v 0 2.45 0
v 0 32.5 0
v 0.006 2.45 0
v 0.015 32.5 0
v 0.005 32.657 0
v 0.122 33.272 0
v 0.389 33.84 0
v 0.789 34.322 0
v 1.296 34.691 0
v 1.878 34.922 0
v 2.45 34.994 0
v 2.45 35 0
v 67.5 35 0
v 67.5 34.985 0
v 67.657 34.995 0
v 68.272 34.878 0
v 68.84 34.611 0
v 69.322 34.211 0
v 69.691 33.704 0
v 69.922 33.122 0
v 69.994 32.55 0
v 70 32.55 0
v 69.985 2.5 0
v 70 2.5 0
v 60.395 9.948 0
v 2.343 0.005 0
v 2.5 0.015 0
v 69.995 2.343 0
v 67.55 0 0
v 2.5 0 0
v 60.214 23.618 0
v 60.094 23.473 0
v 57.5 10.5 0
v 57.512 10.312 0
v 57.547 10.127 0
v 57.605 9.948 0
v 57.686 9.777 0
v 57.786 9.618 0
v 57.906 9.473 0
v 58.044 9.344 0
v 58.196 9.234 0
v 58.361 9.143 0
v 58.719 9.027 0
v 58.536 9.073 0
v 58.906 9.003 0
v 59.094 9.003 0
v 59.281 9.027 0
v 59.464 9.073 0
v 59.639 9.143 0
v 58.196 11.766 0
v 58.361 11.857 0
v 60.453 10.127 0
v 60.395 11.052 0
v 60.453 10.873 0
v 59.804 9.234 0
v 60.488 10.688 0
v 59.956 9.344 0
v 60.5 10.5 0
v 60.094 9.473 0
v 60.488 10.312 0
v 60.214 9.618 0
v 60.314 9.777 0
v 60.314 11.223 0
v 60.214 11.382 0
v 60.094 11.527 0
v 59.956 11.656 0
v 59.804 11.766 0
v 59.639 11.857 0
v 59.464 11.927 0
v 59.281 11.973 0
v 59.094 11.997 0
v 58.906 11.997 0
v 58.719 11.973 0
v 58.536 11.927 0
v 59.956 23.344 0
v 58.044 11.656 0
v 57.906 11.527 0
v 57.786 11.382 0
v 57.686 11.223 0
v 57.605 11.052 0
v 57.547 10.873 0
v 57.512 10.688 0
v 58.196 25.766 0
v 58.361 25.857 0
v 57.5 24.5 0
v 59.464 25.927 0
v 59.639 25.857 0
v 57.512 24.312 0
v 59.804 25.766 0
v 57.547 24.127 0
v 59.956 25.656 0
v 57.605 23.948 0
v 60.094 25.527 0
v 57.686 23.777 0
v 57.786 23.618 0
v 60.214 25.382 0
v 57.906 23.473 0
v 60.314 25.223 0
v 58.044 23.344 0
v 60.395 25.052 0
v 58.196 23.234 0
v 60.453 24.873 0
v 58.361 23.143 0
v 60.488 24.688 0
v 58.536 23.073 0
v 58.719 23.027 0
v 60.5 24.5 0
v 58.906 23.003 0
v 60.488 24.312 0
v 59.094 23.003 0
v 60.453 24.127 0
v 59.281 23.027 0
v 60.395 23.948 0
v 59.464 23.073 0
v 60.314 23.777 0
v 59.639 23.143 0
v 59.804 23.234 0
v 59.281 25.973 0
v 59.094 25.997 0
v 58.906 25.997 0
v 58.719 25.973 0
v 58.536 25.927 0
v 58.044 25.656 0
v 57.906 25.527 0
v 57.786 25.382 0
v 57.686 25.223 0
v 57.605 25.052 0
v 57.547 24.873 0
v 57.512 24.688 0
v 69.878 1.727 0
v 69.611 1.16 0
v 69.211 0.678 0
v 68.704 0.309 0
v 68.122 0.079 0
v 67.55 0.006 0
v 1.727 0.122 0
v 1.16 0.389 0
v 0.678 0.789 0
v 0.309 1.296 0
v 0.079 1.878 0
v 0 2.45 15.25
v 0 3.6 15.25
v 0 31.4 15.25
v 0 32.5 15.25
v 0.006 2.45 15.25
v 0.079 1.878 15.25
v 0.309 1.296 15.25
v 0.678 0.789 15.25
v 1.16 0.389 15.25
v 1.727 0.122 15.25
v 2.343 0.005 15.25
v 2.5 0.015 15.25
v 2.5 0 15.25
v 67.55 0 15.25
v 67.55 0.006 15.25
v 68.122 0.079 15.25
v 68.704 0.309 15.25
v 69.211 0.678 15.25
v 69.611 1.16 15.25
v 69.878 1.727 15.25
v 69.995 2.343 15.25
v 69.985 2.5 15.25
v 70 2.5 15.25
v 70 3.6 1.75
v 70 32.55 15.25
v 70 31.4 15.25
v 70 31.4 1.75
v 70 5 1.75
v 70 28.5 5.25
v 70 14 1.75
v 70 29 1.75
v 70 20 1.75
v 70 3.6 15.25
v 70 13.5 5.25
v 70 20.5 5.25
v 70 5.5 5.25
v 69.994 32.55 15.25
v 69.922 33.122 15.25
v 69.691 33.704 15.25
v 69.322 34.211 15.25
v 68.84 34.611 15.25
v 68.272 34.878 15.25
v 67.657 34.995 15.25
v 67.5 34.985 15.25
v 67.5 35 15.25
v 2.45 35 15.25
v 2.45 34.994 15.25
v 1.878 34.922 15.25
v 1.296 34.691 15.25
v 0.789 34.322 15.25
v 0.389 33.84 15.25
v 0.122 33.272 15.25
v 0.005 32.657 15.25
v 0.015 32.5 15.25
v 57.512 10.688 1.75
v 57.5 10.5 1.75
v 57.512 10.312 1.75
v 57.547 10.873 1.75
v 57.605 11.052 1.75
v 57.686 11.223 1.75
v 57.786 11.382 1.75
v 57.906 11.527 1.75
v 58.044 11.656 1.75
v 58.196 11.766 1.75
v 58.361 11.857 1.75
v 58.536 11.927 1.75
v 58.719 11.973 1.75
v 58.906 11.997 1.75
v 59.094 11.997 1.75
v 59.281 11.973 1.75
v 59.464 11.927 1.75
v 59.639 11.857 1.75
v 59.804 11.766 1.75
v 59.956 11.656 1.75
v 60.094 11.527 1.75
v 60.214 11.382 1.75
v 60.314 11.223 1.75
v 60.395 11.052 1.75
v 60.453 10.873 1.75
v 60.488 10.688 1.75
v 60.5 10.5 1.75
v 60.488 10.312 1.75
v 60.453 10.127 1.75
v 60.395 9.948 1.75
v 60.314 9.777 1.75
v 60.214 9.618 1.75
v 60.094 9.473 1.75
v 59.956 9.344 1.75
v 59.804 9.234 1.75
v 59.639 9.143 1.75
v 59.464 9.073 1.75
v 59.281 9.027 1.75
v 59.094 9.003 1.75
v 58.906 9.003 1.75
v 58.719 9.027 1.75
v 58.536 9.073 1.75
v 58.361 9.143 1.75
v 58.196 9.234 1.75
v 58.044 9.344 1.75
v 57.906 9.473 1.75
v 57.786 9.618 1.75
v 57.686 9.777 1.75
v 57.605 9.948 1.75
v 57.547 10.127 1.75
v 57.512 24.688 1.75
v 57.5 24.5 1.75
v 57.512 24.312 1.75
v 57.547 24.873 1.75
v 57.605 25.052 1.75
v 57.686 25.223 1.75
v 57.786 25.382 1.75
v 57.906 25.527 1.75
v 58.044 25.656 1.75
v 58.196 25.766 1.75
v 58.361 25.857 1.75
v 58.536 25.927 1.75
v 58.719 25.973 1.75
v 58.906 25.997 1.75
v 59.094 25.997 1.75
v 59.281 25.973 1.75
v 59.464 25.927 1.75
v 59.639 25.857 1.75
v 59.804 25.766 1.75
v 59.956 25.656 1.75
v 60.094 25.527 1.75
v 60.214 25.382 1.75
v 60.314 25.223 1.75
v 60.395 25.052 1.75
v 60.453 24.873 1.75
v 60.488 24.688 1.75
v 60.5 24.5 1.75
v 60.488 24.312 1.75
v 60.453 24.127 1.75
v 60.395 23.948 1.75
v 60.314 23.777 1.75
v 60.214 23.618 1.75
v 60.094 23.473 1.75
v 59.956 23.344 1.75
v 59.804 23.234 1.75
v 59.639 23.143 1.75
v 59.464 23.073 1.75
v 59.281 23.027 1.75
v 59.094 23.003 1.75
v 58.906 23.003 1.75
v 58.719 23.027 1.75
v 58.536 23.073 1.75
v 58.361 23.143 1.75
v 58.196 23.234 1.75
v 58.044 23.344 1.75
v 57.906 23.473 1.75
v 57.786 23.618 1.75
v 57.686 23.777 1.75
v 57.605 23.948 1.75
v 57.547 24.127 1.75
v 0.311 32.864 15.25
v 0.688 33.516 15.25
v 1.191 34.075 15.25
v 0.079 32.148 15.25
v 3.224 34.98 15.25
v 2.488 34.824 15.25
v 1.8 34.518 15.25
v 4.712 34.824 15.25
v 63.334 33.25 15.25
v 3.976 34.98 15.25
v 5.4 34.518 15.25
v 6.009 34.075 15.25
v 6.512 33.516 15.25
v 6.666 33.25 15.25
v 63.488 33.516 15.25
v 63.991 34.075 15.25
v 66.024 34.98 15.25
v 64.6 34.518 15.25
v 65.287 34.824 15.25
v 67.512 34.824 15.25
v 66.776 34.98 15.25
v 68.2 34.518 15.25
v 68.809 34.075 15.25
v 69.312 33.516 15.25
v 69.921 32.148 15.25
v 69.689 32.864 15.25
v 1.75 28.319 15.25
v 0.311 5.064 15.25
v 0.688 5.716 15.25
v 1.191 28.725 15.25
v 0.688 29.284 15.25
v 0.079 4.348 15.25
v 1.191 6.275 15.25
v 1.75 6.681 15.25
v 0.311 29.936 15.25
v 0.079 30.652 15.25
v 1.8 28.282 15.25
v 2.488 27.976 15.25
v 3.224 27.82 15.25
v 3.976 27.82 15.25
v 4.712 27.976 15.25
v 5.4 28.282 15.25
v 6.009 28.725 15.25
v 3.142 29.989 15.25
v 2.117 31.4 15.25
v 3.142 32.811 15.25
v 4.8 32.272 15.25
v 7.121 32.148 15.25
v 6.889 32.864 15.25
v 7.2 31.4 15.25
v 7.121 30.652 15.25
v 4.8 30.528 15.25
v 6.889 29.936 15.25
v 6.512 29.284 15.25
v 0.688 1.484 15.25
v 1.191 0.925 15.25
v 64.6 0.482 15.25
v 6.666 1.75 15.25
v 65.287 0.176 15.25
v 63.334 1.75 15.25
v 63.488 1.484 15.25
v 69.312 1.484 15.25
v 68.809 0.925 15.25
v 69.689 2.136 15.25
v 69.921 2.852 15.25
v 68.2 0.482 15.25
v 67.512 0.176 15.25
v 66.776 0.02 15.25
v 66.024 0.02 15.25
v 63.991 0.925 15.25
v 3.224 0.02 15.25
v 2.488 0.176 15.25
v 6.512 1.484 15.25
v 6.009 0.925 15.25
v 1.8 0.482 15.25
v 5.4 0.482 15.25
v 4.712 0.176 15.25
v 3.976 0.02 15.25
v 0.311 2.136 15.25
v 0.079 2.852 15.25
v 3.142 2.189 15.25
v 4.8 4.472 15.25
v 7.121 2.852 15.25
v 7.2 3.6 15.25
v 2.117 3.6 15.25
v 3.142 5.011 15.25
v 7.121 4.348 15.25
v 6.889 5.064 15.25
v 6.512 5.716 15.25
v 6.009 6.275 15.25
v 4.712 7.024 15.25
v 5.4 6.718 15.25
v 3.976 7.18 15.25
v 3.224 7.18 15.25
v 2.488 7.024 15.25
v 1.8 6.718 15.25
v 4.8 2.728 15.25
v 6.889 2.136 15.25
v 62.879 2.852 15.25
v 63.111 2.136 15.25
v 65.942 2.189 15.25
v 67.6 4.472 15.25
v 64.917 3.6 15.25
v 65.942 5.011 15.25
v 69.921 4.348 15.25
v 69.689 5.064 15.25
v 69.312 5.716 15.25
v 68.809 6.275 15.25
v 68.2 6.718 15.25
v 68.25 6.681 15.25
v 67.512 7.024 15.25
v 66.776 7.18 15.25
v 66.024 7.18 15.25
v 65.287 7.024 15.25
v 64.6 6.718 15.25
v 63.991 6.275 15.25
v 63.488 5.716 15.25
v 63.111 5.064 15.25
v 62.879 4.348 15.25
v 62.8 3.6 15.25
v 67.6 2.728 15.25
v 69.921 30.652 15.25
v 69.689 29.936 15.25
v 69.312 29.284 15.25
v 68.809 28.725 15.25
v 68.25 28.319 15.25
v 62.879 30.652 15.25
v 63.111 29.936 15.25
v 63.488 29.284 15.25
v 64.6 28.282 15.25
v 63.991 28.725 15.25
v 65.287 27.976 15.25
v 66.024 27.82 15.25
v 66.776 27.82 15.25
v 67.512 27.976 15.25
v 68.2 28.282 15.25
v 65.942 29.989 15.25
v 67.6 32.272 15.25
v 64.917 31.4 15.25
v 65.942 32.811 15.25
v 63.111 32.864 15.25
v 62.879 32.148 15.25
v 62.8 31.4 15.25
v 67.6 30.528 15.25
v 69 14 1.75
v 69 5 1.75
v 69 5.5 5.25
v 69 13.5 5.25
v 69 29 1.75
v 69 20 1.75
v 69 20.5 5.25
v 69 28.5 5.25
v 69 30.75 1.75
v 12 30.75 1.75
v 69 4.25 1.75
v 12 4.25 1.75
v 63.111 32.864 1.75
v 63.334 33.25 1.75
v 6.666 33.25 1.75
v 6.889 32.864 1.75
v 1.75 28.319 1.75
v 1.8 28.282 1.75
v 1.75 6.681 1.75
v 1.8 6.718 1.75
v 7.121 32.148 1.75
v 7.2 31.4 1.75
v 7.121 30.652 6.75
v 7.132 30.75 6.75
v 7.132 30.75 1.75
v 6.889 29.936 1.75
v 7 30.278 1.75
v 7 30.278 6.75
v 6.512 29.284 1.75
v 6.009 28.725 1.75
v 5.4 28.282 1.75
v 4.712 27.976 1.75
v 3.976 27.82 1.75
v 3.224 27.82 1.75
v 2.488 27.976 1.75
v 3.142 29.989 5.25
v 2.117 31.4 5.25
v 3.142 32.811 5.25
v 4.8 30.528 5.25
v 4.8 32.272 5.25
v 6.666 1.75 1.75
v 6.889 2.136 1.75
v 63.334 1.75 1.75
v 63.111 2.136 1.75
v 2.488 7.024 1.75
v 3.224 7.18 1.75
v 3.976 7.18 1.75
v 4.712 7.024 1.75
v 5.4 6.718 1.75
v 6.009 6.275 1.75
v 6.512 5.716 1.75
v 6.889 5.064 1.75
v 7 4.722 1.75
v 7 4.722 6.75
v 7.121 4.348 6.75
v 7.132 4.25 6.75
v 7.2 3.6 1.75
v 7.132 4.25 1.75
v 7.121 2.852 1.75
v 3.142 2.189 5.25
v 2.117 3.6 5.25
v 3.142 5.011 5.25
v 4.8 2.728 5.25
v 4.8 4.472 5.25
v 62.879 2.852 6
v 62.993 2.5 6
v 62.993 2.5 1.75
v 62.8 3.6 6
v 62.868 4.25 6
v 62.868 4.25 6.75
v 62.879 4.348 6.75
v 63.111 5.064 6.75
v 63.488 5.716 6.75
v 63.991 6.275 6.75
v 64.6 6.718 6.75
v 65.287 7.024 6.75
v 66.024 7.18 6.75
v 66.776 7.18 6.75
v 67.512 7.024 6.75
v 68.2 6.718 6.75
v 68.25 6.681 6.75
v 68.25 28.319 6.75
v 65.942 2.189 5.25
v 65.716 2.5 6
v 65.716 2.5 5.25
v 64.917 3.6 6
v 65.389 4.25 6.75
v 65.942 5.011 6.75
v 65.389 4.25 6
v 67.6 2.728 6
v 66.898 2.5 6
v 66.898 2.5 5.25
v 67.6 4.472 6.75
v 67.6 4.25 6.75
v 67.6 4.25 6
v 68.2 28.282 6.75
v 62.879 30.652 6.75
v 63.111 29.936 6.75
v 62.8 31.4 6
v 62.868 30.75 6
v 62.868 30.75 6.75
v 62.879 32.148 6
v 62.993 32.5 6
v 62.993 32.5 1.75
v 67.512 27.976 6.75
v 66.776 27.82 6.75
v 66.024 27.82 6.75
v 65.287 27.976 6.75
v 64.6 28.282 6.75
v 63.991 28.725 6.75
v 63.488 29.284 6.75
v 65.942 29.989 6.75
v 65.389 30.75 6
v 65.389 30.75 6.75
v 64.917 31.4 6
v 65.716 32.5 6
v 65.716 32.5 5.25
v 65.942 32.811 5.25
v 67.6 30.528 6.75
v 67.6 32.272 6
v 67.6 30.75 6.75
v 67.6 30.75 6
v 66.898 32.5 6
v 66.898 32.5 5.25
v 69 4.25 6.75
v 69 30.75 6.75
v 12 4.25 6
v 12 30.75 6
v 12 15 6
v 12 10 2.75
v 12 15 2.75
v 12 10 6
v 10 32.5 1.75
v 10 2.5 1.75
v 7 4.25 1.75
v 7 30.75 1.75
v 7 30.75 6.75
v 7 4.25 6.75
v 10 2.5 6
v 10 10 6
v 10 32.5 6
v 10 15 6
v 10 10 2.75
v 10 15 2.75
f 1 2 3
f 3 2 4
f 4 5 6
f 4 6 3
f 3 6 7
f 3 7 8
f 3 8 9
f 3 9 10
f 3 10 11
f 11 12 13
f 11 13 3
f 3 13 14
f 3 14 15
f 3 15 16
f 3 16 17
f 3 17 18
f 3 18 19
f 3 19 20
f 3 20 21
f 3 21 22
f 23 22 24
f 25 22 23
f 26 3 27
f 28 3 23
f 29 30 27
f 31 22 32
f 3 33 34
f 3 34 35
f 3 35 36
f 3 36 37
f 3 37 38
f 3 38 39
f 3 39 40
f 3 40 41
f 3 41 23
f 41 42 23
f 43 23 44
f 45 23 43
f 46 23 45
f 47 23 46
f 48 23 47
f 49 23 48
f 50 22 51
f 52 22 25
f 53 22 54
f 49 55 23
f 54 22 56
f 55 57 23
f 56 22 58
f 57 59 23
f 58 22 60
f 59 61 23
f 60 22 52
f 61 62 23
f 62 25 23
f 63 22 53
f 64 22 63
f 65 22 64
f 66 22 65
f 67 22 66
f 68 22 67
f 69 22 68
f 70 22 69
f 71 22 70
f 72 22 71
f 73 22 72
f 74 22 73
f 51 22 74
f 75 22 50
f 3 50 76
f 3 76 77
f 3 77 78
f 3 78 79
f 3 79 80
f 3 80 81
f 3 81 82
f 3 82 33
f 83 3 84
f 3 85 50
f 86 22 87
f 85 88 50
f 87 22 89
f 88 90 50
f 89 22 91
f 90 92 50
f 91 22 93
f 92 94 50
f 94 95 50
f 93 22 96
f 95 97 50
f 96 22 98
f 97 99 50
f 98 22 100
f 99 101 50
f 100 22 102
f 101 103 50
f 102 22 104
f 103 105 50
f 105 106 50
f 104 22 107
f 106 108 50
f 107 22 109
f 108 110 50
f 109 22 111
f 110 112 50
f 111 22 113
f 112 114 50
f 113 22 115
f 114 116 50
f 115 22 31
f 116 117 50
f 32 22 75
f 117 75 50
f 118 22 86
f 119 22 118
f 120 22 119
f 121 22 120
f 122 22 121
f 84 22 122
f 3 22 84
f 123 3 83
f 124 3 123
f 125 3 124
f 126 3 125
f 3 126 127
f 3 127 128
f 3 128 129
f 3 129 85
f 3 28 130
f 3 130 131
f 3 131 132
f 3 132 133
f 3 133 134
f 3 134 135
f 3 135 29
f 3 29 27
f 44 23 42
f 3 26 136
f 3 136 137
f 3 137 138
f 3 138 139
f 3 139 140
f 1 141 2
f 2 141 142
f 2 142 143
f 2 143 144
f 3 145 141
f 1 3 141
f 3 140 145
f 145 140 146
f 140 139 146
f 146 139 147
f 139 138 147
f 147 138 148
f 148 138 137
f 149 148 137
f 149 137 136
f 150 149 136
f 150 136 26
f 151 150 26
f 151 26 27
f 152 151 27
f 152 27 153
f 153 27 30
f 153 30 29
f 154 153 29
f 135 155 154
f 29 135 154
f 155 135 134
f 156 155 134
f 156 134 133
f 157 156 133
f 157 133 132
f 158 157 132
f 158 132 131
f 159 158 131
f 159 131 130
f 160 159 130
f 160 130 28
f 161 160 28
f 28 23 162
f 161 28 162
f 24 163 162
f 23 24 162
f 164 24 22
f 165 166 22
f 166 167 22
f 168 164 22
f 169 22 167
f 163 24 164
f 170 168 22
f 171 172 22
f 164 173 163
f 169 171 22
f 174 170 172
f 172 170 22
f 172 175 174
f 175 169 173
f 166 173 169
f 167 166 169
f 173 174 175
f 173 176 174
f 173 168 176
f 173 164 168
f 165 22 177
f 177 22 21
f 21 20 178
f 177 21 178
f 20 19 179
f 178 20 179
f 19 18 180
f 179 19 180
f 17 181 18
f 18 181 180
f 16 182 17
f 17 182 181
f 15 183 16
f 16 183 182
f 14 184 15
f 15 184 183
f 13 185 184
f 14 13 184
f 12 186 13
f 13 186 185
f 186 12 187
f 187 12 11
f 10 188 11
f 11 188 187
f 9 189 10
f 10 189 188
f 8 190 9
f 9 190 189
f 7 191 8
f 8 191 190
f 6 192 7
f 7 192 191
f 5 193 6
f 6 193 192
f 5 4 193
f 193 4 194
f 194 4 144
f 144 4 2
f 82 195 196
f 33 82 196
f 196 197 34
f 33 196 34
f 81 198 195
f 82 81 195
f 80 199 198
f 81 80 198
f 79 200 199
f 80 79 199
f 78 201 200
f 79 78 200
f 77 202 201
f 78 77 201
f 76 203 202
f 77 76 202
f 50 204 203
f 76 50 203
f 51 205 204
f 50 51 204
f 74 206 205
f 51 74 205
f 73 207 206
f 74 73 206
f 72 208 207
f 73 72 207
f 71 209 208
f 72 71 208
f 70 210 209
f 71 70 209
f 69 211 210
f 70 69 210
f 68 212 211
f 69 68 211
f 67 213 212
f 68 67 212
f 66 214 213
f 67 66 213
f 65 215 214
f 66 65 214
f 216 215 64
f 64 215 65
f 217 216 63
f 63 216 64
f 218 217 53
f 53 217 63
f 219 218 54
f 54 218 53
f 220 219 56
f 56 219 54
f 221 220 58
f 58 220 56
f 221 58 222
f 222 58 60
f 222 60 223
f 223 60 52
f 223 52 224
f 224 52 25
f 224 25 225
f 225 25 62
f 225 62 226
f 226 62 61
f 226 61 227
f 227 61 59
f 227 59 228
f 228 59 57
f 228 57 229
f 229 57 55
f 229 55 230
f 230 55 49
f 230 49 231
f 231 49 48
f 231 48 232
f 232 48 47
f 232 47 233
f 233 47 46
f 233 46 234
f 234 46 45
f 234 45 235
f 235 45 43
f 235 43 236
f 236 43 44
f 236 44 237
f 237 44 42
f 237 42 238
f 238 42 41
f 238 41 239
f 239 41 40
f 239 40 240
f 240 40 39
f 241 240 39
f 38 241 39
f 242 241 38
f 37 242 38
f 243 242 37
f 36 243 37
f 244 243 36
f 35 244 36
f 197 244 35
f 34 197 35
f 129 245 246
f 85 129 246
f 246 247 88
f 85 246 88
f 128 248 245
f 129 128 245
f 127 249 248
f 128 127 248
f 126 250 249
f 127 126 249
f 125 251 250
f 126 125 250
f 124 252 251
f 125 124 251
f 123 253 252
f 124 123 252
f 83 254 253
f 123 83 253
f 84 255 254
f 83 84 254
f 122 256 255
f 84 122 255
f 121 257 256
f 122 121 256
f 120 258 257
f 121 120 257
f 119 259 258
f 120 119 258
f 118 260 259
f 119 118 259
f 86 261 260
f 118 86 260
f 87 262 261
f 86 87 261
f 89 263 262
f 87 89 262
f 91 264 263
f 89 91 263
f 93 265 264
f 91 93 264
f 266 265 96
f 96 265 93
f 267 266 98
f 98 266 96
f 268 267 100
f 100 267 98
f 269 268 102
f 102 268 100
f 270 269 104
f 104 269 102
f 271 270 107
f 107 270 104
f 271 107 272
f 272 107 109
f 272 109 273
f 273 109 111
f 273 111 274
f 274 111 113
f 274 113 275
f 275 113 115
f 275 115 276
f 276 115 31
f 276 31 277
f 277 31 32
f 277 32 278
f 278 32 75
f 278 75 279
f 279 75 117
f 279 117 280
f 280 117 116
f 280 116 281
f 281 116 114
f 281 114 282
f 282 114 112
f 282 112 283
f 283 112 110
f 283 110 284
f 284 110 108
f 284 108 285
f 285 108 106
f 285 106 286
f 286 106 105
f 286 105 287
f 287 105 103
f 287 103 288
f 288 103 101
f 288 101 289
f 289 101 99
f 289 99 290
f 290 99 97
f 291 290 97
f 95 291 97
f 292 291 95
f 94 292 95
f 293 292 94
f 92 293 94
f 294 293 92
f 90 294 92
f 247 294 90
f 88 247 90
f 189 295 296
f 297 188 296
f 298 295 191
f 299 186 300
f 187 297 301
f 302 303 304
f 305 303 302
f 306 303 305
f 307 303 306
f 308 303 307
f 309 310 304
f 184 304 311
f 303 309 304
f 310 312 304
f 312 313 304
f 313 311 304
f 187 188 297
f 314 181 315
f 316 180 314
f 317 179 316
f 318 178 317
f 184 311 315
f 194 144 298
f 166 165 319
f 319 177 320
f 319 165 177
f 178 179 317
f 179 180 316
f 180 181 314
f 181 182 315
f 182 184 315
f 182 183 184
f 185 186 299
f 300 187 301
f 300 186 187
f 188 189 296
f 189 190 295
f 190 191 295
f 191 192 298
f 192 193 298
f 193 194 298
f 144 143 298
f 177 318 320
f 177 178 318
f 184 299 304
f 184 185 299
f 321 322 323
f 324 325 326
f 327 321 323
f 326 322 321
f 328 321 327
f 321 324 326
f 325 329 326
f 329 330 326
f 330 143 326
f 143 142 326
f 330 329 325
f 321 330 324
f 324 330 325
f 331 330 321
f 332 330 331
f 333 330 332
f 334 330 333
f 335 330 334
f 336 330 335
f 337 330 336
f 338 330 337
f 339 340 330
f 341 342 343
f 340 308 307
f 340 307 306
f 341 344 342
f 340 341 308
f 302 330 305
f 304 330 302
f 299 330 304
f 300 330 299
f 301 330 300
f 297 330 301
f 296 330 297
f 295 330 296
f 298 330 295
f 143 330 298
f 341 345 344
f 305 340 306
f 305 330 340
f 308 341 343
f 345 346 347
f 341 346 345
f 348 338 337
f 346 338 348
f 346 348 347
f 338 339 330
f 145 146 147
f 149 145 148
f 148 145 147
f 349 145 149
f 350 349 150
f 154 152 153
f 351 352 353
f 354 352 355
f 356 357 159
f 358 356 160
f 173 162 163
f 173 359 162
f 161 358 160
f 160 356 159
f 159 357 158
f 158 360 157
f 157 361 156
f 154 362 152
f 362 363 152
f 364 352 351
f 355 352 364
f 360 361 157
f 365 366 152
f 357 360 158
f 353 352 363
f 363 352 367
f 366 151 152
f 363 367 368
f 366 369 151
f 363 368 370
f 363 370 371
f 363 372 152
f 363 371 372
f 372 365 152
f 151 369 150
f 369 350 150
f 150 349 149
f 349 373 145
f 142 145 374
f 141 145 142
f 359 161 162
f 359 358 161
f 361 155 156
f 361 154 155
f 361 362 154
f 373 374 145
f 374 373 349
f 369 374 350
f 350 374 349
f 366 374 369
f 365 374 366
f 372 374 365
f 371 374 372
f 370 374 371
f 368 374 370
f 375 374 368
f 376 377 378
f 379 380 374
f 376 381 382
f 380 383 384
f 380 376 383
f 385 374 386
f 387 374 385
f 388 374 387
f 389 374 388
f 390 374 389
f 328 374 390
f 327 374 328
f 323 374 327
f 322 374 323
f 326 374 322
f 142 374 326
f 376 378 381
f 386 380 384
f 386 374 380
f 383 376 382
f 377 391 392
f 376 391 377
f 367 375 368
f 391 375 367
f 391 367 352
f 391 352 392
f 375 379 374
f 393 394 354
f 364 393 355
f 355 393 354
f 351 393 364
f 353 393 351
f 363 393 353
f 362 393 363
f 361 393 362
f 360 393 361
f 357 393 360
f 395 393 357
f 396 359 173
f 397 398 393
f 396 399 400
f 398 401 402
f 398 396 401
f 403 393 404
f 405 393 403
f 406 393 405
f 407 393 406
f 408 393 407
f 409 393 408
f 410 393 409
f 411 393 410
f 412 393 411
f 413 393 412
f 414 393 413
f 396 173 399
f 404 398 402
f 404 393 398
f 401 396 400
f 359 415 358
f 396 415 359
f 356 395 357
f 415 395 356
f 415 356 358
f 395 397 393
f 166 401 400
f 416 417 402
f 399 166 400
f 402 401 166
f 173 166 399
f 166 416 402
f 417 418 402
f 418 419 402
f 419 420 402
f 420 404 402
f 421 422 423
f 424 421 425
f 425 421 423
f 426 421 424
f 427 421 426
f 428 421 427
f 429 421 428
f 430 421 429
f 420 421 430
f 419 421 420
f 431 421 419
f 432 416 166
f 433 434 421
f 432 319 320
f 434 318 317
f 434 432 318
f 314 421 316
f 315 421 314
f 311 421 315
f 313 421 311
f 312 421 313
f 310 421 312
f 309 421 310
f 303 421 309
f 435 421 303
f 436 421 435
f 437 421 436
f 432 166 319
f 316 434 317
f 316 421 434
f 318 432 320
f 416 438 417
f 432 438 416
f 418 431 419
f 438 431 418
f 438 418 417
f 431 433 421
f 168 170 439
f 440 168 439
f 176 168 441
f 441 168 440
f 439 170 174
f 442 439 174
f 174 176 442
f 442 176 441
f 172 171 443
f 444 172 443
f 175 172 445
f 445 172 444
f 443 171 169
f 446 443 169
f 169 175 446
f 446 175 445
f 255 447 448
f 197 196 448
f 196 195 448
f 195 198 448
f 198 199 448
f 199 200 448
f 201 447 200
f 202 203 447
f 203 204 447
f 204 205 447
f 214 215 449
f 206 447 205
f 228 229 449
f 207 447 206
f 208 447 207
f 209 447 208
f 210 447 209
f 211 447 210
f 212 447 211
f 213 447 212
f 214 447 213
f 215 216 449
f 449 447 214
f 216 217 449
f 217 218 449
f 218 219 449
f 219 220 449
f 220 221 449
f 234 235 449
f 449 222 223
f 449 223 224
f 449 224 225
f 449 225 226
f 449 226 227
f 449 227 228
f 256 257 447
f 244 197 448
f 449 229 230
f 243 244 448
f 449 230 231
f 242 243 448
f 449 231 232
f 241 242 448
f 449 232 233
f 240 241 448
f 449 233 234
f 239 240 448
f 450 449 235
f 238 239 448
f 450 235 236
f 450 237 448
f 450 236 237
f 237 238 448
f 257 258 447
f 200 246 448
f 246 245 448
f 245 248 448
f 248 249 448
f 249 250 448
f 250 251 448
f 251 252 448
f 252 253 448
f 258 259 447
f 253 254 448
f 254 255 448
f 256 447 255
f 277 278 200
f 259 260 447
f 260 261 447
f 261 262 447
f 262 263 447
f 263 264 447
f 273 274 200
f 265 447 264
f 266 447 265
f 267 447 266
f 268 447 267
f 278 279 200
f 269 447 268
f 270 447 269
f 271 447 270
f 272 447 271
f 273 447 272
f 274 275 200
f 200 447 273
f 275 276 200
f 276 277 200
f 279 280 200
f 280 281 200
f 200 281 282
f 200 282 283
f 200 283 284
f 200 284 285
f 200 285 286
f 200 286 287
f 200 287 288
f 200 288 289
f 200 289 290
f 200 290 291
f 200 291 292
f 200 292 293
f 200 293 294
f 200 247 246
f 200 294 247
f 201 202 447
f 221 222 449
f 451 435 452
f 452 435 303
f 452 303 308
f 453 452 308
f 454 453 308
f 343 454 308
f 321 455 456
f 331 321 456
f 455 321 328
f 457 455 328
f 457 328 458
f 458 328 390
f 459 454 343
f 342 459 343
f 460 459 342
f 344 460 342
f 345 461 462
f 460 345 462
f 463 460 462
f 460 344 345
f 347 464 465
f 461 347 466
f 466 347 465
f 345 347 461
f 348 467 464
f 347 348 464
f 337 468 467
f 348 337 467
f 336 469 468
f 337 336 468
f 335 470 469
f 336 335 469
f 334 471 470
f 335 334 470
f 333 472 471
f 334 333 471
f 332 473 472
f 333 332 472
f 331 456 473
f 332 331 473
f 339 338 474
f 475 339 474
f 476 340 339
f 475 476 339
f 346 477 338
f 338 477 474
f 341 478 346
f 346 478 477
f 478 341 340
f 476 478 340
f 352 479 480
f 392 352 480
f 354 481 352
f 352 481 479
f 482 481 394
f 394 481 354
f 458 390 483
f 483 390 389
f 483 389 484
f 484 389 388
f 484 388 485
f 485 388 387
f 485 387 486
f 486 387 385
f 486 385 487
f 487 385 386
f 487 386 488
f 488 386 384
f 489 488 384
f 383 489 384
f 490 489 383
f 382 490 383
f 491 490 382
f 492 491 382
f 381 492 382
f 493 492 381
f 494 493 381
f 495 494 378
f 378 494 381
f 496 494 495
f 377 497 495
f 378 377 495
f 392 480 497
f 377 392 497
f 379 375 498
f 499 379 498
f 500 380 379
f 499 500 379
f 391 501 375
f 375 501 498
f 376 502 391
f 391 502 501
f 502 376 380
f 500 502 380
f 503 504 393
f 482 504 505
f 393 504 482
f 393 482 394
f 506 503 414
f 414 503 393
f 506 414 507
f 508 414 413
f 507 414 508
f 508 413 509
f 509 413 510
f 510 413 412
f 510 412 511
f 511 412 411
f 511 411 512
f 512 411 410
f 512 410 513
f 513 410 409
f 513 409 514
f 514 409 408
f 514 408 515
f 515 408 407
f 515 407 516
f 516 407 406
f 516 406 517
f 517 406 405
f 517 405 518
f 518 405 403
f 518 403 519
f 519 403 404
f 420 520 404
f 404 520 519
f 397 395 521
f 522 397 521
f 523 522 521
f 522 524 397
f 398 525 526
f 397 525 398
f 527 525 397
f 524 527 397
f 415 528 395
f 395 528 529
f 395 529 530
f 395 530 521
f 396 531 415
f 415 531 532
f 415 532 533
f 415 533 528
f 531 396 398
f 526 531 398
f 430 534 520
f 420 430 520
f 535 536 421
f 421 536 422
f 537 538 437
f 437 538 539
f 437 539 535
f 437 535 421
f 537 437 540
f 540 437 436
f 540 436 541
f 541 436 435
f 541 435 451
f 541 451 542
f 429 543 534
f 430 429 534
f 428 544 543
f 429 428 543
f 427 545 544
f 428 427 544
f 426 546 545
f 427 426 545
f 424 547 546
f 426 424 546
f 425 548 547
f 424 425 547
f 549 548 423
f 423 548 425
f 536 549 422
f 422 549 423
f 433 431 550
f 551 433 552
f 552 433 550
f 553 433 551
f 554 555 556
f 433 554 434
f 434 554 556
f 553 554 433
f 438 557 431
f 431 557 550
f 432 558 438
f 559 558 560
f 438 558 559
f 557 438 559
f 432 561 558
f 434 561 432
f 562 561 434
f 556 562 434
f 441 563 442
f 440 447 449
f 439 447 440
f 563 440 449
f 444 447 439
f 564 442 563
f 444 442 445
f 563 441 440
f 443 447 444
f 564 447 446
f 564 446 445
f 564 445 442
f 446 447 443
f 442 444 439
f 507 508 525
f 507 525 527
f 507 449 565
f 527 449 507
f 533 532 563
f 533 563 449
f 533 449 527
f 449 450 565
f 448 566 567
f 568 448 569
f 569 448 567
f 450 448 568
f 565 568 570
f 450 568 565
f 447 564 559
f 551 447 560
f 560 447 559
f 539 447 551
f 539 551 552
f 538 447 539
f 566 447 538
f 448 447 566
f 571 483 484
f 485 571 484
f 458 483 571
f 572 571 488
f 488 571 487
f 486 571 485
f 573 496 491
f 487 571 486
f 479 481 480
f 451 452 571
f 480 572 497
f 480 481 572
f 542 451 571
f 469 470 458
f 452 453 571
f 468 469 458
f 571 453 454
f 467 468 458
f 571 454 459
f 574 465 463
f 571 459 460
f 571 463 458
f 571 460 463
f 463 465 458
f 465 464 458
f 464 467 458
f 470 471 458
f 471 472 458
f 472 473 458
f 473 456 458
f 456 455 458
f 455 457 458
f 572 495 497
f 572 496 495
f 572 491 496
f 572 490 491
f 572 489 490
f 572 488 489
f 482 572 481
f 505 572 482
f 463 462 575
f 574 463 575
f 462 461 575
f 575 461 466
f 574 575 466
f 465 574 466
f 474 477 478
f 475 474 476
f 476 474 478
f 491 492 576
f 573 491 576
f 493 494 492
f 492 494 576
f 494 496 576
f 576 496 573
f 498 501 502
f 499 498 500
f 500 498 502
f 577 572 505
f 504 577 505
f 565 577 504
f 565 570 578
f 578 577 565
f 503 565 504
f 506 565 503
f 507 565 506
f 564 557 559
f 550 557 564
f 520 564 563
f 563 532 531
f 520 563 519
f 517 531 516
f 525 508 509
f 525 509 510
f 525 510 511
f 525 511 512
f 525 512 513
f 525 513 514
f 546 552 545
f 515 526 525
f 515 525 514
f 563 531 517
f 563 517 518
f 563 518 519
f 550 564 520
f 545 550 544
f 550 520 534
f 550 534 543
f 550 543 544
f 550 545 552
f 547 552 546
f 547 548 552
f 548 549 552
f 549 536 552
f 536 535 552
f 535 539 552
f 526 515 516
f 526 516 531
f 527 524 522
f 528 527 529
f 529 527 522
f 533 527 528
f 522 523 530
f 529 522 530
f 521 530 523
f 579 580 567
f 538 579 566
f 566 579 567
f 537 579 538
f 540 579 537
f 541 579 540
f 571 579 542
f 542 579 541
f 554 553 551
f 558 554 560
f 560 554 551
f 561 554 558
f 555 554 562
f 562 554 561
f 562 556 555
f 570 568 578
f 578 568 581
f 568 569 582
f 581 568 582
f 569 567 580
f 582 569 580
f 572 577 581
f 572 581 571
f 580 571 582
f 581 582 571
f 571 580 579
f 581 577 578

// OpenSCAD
// file: polyhole.scad
module polyhole(h, d) {
    n = max(round(2 * d),3);
    rotate([0,0,180])
        cylinder(h = h, r = (d / 2) / cos (180 / n), $fn = n);
}

x=10;
y=30;
z=5;
explode=true;
if (explode)
{
cube(size = [x,y,z], center = false);
translate([0,0,10]) {color([1,1,0]); cylinder(h = z, r = 1, $fn = 6);}
}
// file: roundCornersCube.scad
/*
http://codeviewer.org/view/code:1b36 
Copyright (C) 2011 Sergio Vilches
This program is free software: you can redistribute it and/or modify it under the terms of the GNU General Public License as published by the Free Software Foundation, either version 3 of the License, or (at your option) any later version.
This program is distributed in the hope that it will be useful, but WITHOUT ANY WARRANTY; without even the implied warranty of MERCHANTABILITY or FITNESS FOR A PARTICULAR PURPOSE. See the GNU General Public License for more details. You should have received a copy of the GNU General Public License along with this program. If not, see <http://www.gnu.org/licenses/>.
Contact: s.vilches.e@gmail.com


    ----------------------------------------------------------- 
                 Round Corners Cube (Extruded)                
      roundCornersCube(x,y,z,r) Where:                        
         - x = Xdir width                                     
         - y = Ydir width                                     
         - z = Height of the cube                             
         - r = Rounding radious                               
                                                              
      Example: roundCornerCube(10,10,2,1);                    
     *Some times it's needed to use F6 to see good results!   
 	 ----------------------------------------------------------- 
*/
// Test it!
// roundCornersCube(10,5,2,1);


module createMeniscus(h,radius) // This module creates the shape that needs to be substracted from a cube to make its corners rounded.
difference(){        //This shape is basicly the difference between a quarter of cylinder and a cube
   translate([radius/2+0.1,radius/2+0.1,0]){
      cube([radius+0.2,radius+0.1,h+0.5],center=true);         // All that 0.x numbers are to avoid "ghost boundaries" when substracting
   }

   cylinder(h=h+0.2,r=radius,$fn = 25,center=true);
}


module roundCornersCube(x,y,z,r)  // Now we just substract the shape we have created in the four corners
difference(){
   cube([x,y,z], center=true);

translate([x/2-r,y/2-r]){  // We move to the first corner (x,y)
      rotate(0){  
         createMeniscus(z,r); // And substract the meniscus
      }
   }
   translate([-x/2+r,y/2-r]){ // To the second corner (-x,y)
      rotate(90){
         createMeniscus(z,r); // But this time we have to rotate the meniscus 90 deg
      }
   }
      translate([-x/2+r,-y/2+r]){ // ... 
      rotate(180){
         createMeniscus(z,r);
      }
   }
      translate([x/2-r,-y/2+r]){
      rotate(270){
         createMeniscus(z,r);
      }
   }
}
// file: teardrops.scad
/* From http://www.thingiverse.com/thing:3457
   © 2010 whosawhatsis

   This program is free software: you can redistribute it and/or modify
   it under the terms of the GNU Lesser General Public License as published by
   the Free Software Foundation, either version 3 of the License, or
   (at your option) any later version.

   This program is distributed in the hope that it will be useful,
   but WITHOUT ANY WARRANTY; without even the implied warranty of
   MERCHANTABILITY or FITNESS FOR A PARTICULAR PURPOSE. See the
   GNU Lesser General Public License for more details.

   You should have received a copy of the GNU Lesser General Public License
   along with this program. If not, see <http://www.gnu.org/licenses/>.
*/


/*
This script generates a teardrop shape at the appropriate angle to prevent overhangs greater than 45 degrees. The angle is in degrees, and is a rotation around the Y axis. You can then rotate around Z to point it in any direction. Rotation around X or Y will cause the angle to be wrong.
*/

module teardrop(radius, length, angle) {
	rotate([0, angle, 0]) union() {
		linear_extrude(height = length, center = true, convexity = radius, twist = 0)
			circle(r = radius, $fn = 30);
		linear_extrude(height = length, center = true, convexity = radius, twist = 0)
			projection(cut = false) rotate([0, -angle, 0]) translate([0, 0, radius * sin(45) * 1.5]) cylinder(h = radius * sin(45), r1 = radius * sin(45), r2 = 0, center = true, $fn = 30);
	}
		
	//I worked this portion out when a bug was causing the projection above to take FOREVER to calculate. It works as a replacement, and I figured I'd leave it here just in case.
	/*
		#polygon(points = [[radius * cos(-angle / 2), radius * sin(-angle / 2), 0],[radius * cos(-angle / 2), radius * -sin(-angle / 2), 0],[(sin(-angle - 45) + cos(-angle - 45)) * radius, 0, 0]], paths = [[0, 1, 2]]);
		#polygon(points = [[radius * -cos(-angle / 2), radius * sin(-angle / 2), 0],[radius * -cos(-angle / 2), radius * -sin(-angle / 2), 0],[(sin(-angle - 45) + cos(-angle - 45)) * radius, 0, 0]], paths = [[0, 1, 2]]);
		#polygon(points = [[radius * sin(-angle / 2), radius * cos(-angle / 2), 0],[radius * sin(-angle / 2), radius * -cos(-angle / 2), 0],[(sin(-angle - 45) + cos(-angle - 45)) * radius, 0, 0]], paths = [[0, 1, 2]]);
	*/
}

/*
 * Simple intersection method to implement a flat/truncated teardrop
 */
module flat_teardrop(radius, length, angle) {
	intersection() {
		rotate([0, angle, 0]) {
			cube(size=[radius * 2, radius * 2, length], center=true);
		}
		teardrop(radius, length, angle);
	}
}

module test_teardrop(){
    translate([0, -15, 0]) teardrop(5, 20, 90);
    translate([0, 0, 0]) teardrop(5, 20, 60);
    translate([0, 15, 0]) teardrop(5, 20, 45);
}

//test_teardrop();
// main file
// Generic case - Improved
// v1 January 2015
// Printbus

// Remixed from dandmpye's Generic case (box and lid) http://www.thingiverse.com/thing:28608
// Changes include revised dimensioning for improved scalability
// Reformatted and labels revised for readability
// Added provision for mounting tabs

// Revise your paths to libary where these openSCAD library modules are located
use <teardrops.scad>
use <roundCornersCube.scad>
use <polyhole.scad>
// Summary of external modules used - 
// polyhole(h,d) provides improved size control on small holes
// roundCornersCube (x,y,z,r)

module standoff( post_od , post_id , post_h , hole_depth) {
  // Generates a standoff for mounting lid or circuit board
  // post_od: outer diamter of the standoff post
  // post_id: diameter of the inner hole in the standoff post
  // post_h: height of the standoff post
  // hole_depth: depth of the inner hole in the standoff post
  difference() {
    // start with a solid post
    cylinder( d = post_od , h = post_h , $fs=0.01);
    // remove the hole for the screw
    translate([ 0 , 0 , post_h - hole_depth ])
      polyhole( hole_depth + 1 , post_id ); 
  }  // end difference
}  // end module standoff

module cylindrical_lip( lip_od , lip_h , lip_w ) {	
  // Generate a quarter circle arc for use as a lip
  // lip_od: outer diameter of the lip arc
  // lip_h: height of the lip arc
  // lip_w: width of the lip arc
  lip_r = lip_od / 2;   // calculate radius of the lip arc
  difference() {
    // start with a solid cylinder
    cylinder( r=lip_r , h=lip_h , $fs=0.01);
    // hollow it out to form a ring
    translate([ 0 , 0 , -0.5 ])                // -0.5 to offset oversized cylinder being removed
      cylinder( r = lip_r - lip_w , h = lip_h + 1 , $fs=0.01 ); // oversize by +1 to ensure complete removal
    // remove all but a quarter of the ring
    translate([ -lip_r , 0 , -0.5 ])           // -0.5 to offset oversized cube being removed
      cube([ lip_od + 1 , lip_r , lip_h + 1 ]);// oversize by +1 to ensure complete removal 
    translate([ 0 , -lip_r , -0.5 ])           // -0.5 to offset oversized cube being removed
      cube([ lip_od + 1 , lip_r , lip_h + 1 ]);// oversize by +1 to ensure complete removal
  }  // end difference
}  // end module cylindrical_lip

module rounded_cube_case (generate_box, generate_lid, box_len, box_height) {
  // generate_box: true or false flag
  // generate_lid: true or false flag

  // Design rendering of box starts at x=0, y=0, z=0 (mounting tab will go into -x)
  // If used, mounting tabs are always added on X axis ends

  // Case parameters for tailoring  
  sx = box_len; 			     // box outer size in X axis
  sy = 35;			     // box outer size in Y axis
  sz = box_height;				  // box outer size in Z axis, including top and bottom
  box_r = 2.5;			  // radius of the box corners
  wall_t = 1.75;       // wall thickenss for the box and lid should be < box_hole_dia
  ft = 0.2;            // fit tolerance or clearance on lid

  // Box and lid screw hole parameters for tailoring
  box_hole_dia = 2.4;  // diameter of the screw hole in the box part (2.4 for #4)
  box_hole_depth = 10; // depth of the screw hole must be < box height
  lid_hole_dia = 3.2;  // diameter of the screw hole in the lid part (3.2 for #4)
  lid_head_dia = 5.5;  // diameter of the screw head recess (5.5 for #4)
  lid_head_depth = 0;  // depth of head recess (only use if wall_t can accomodate it)

  // Mounting tab parameters for tailoring
  tab_w = 8;           // mounting tab width 
  use_tab = false;     // true or false for mounting tab yes/no
  tab_hole_dia = 3.2;  // diameter of the clearance holes in the mounting tabs
  tab_hole_offset = 7; // offset from edge of tab to mounting holes

  // Misc calculations
  // corner_post_dia must be >= twice the wall thickness and >= lid_head_dia
  corner_post_dia = box_hole_dia * 3 ;    // diameter of the corner standoff post
  corner_post_r = corner_post_dia / 2 ;   // radius of the corner standoff post
  corner_lip_dia = corner_post_dia + 2 * (corner_post_r - wall_t) + 2 * ft ;
  corner_lip_r = corner_lip_dia / 2;

  // Prepare matrix of lid hole locations
  lid_hole_centres = [[    corner_post_r ,      corner_post_r , 0], 
					    [  sx - corner_post_r ,      corner_post_r , 0],
					    [  sx - corner_post_r , sy - corner_post_r , 0], 
					    [       corner_post_r , sy - corner_post_r , 0]];

  // Prepare matrix of mounting tab hole locations
  // Mounting holes are centered each corner of the mounting tabs
  tab_hole_centres = [[ -tab_w/2      , tab_hole_offset      , 0 ],
                      [  sx + tab_w/2 , tab_hole_offset      , 0 ],
                      [  sx + tab_w/2 , sy - tab_hole_offset , 0 ],
                      [  -tab_w/2     , sy - tab_hole_offset , 0 ]];

  if (generate_box == true) {    // we need to create the box part
    union() {
      difference() {
        // Start with a solid rounded cube
        translate([ sx/2 , sy/2 , sz/2 ])
          roundCornersCube( sx , sy , sz , box_r );
        // reduce the solids by the height of the box lid
        translate([ -0.1 , -0.1 , sz - wall_t ])
          cube([ sx+1 , sy+1 , wall_t + 1 ]);
        // Hollow out the box
        translate([ sx/2 , sy/2 , sz/2 + wall_t ]) 
          roundCornersCube( sx - (wall_t*2) , sy - (wall_t*2) , sz, box_r );

        // Define any holes in the box walls here

      }  // End difference
			
      // Add the standoff posts for the lid screws in each corner
      for (i = lid_hole_centres) {
        translate([ 0 , 0 , wall_t ])  // raise up to the inside of the box
          translate(i)                 // locate a corner
            standoff( corner_post_dia , box_hole_dia , sz - (wall_t * 2) , box_hole_depth );
      }  // end for loop

      // Add any mounting standoff posts on the box bottom here

      // Add mounting tab if needed
      if ( use_tab == true ) {
        difference () {
          // start with the solid mounting tab
          translate ([ sx/2 , sy/2 , wall_t/2 ])
            roundCornersCube ( sx + (tab_w*2) , sy , wall_t , box_r );

          // now remove holes in the mounting tab
          for (j = tab_hole_centres) {          // for each hole in the mounting tab
            translate ([ 0 , 0 , -0.5 ])        // shift Z to ensure complete removal of hole
              translate(j)
                polyhole ( wall_t + 1 , tab_hole_dia );
          }  // end for loop on mounting tab holes
        }  // end difference
      }  // end if use_tab

    }  // end union
  }  // end if generate_box

  y_offset = generate_box ? sy+10 : 0; // offset lid Y by sy+10 if we are also doing box
  if ( generate_lid == true ) {        // we need to create the lid part
    translate([ 0, y_offset , 0]) { 
      difference() {
        // create the base solids for the lid
        union() {
          //Create the plate of the lid
          translate([ sx/2 , sy/2, wall_t/2 ])
            roundCornersCube( sx , sy , wall_t , box_r );
 
          // Add a reinforcement lip to the lid, starting with the straight portions 
          // The lip has a height equal to the wall thickness
          // The lip width is adjusted to align inside edge with corner hole centers
          translate([ corner_post_dia + ft , wall_t + ft , wall_t ]) 
            cube([sx - (corner_post_dia*2) - (ft*2) , corner_post_r-wall_t , wall_t ]);
          translate([wall_t + ft , corner_post_dia + ft , wall_t]) 
            cube([ corner_post_r-wall_t , sy - (corner_post_dia*2) - (ft*2) , wall_t ]);
          translate([sx - corner_post_r - ft , corner_post_dia + ft , wall_t ]) 
            cube([corner_post_r-wall_t , sy - (corner_post_dia*2) - (ft*2) , wall_t ]);	
          translate([corner_post_dia + ft, sy - corner_post_r - ft, wall_t]) 
            cube([sx - (corner_post_dia*2) - (ft*2) , corner_post_r-wall_t , wall_t]);
					
          //Fit a quarter circle lip around the corner standoffs
          translate([ 0 , 0 , wall_t]) 
            translate( lid_hole_centres[0] ) 
              rotate(180)  
                cylindrical_lip( corner_lip_dia , wall_t , corner_post_r-wall_t );
          translate([ 0 , 0 , wall_t ])
            translate( lid_hole_centres [1] )
              rotate(270)  
                cylindrical_lip( corner_lip_dia , wall_t , corner_post_r-wall_t );
          translate([ 0 , 0 , wall_t ])
            translate( lid_hole_centres [2] ) 
              cylindrical_lip( corner_lip_dia , wall_t, corner_post_r-wall_t );
          translate([ 0 , 0 , wall_t ])
            translate( lid_hole_centres [3] )
              rotate(90)  
					 cylindrical_lip( corner_lip_dia , wall_t , corner_post_r-wall_t );
        }  // end union of the base solids

        for (i = lid_hole_centres) {            // for each corner in the lid
          // remove the material for the corner screw hole 
          translate([ 0 , 0 , -0.5 ])           // shift Z to ensure complete removal of hole
            translate(i) 
              polyhole( wall_t + 1 , lid_hole_dia ); // height is +1 to ensure complete removal
          if ( lid_head_depth > 0 ) {           // we need to countersink the screw head
            // remove the material for the screw head recess 
            translate([ 0 , 0 , -1 ])           // -1 to offset oversize hole being removed
              translate(i) 
                polyhole( lid_head_depth + 1 , lid_head_dia ); // oversize +1 to ensure complete removal 
          }  // end if lid_head_depth
        }  // end for loop on lid holes

        // Add removal of any holes in the lid here

      }  // end difference for lid
    }  // end translate to move away from box if it is also being made
  }  // end if generate_lid
}  // end module rounded_cube_case

module trapezoid(width_base, width_top,height,thickness) {

  linear_extrude(height = thickness) polygon(points=[[0,0],[width_base,0],[width_base-(width_base-width_top)/2,height],[(width_base-width_top)/2,height]], paths=[[0,1,2,3]]); 
  
}


///////////////////////////////////////////////////////////
///////////////////////////////////////////////////////////
// This is for the Linkit Smart 7688 

module linkit_7688_bottom()
{
	difference()
	{
		rounded_cube_case(true, false,70,17);
	
		// usb ports
		rotate([90,0,90]) translate([20,1.75,65]) trapezoid(9, 8, 3.5,10);
		rotate([90,0,90]) translate([5,1.75,65]) trapezoid(9, 8, 3.5,10);

		// Hole in the screw mount
		translate([7,4.25,1.75]) cube([62,26.5,5]);
	
		// button holes
		translate([59,10.5,0]) cylinder(d=3,h=3,$fn=50);
		translate([59,24.5,0]) cylinder(d=3,h=3,$fn=50);
	}

	// Board bumper
	difference()
	{
		translate([10,2.5,0]) cube([59,30,6]);
		translate([12,4.25,0]) cube([57,26.5,6]);

  	 	// Hole for antenna connector
		translate([9,10,2.75]) cube([5,5,5]);

	}
}

module linkit_7688_top()
{
	rounded_cube_case(false, true,70,17);
}

///////////////////////////////////////////////////////////
///////////////////////////////////////////////////////////
// This is for the Linkit Smart 7688 Duo


module linkit_7688Duo_bottom()
{
	difference()
	{
		rounded_cube_case(true, false,90,25);
	
		// usb ports
		rotate([90,0,90]) translate([20,1.75,85]) trapezoid(9, 8, 3.5,10);
		rotate([90,0,90]) translate([5,1.75,85]) trapezoid(9, 8, 3.5,10);

		// Hole in the screw mount
		translate([27,4.25,1.75]) cube([62,26.5,5]);
	
		// button holes
		translate([80,10.5,0]) cylinder(d=3,h=3,$fn=50);
		translate([80,17.5,0]) cylinder(d=3,h=3,$fn=50);
		translate([80,24.5,0]) cylinder(d=3,h=3,$fn=50);

		// Sensor hole
		rotate ([90,90,90]) translate([-12,17.5,0]) cylinder(d=14,h=3,$fn=50);
	}

	// Board bumper
	difference()
	{
		translate([25,2.5,0]) cube([64,30,6]);
		translate([27,4.25,0]) cube([62,26.5,6]);

   		// Hole for antenna connector
		translate([25,10,2.75]) cube([5,5,5]);
	}
}


module linkit_7688Duo_top()
{
	rounded_cube_case(false, true,90,17);
}

///////////////////////////////////////////////////////
///////////////////////////////////////////////////////
// BUILD SECTION
// Uncomment what you need here

linkit_7688_bottom();
//linkit_7688_top();
//linkit_7688Duo_bottom();
//linkit_7688Duo_top();
